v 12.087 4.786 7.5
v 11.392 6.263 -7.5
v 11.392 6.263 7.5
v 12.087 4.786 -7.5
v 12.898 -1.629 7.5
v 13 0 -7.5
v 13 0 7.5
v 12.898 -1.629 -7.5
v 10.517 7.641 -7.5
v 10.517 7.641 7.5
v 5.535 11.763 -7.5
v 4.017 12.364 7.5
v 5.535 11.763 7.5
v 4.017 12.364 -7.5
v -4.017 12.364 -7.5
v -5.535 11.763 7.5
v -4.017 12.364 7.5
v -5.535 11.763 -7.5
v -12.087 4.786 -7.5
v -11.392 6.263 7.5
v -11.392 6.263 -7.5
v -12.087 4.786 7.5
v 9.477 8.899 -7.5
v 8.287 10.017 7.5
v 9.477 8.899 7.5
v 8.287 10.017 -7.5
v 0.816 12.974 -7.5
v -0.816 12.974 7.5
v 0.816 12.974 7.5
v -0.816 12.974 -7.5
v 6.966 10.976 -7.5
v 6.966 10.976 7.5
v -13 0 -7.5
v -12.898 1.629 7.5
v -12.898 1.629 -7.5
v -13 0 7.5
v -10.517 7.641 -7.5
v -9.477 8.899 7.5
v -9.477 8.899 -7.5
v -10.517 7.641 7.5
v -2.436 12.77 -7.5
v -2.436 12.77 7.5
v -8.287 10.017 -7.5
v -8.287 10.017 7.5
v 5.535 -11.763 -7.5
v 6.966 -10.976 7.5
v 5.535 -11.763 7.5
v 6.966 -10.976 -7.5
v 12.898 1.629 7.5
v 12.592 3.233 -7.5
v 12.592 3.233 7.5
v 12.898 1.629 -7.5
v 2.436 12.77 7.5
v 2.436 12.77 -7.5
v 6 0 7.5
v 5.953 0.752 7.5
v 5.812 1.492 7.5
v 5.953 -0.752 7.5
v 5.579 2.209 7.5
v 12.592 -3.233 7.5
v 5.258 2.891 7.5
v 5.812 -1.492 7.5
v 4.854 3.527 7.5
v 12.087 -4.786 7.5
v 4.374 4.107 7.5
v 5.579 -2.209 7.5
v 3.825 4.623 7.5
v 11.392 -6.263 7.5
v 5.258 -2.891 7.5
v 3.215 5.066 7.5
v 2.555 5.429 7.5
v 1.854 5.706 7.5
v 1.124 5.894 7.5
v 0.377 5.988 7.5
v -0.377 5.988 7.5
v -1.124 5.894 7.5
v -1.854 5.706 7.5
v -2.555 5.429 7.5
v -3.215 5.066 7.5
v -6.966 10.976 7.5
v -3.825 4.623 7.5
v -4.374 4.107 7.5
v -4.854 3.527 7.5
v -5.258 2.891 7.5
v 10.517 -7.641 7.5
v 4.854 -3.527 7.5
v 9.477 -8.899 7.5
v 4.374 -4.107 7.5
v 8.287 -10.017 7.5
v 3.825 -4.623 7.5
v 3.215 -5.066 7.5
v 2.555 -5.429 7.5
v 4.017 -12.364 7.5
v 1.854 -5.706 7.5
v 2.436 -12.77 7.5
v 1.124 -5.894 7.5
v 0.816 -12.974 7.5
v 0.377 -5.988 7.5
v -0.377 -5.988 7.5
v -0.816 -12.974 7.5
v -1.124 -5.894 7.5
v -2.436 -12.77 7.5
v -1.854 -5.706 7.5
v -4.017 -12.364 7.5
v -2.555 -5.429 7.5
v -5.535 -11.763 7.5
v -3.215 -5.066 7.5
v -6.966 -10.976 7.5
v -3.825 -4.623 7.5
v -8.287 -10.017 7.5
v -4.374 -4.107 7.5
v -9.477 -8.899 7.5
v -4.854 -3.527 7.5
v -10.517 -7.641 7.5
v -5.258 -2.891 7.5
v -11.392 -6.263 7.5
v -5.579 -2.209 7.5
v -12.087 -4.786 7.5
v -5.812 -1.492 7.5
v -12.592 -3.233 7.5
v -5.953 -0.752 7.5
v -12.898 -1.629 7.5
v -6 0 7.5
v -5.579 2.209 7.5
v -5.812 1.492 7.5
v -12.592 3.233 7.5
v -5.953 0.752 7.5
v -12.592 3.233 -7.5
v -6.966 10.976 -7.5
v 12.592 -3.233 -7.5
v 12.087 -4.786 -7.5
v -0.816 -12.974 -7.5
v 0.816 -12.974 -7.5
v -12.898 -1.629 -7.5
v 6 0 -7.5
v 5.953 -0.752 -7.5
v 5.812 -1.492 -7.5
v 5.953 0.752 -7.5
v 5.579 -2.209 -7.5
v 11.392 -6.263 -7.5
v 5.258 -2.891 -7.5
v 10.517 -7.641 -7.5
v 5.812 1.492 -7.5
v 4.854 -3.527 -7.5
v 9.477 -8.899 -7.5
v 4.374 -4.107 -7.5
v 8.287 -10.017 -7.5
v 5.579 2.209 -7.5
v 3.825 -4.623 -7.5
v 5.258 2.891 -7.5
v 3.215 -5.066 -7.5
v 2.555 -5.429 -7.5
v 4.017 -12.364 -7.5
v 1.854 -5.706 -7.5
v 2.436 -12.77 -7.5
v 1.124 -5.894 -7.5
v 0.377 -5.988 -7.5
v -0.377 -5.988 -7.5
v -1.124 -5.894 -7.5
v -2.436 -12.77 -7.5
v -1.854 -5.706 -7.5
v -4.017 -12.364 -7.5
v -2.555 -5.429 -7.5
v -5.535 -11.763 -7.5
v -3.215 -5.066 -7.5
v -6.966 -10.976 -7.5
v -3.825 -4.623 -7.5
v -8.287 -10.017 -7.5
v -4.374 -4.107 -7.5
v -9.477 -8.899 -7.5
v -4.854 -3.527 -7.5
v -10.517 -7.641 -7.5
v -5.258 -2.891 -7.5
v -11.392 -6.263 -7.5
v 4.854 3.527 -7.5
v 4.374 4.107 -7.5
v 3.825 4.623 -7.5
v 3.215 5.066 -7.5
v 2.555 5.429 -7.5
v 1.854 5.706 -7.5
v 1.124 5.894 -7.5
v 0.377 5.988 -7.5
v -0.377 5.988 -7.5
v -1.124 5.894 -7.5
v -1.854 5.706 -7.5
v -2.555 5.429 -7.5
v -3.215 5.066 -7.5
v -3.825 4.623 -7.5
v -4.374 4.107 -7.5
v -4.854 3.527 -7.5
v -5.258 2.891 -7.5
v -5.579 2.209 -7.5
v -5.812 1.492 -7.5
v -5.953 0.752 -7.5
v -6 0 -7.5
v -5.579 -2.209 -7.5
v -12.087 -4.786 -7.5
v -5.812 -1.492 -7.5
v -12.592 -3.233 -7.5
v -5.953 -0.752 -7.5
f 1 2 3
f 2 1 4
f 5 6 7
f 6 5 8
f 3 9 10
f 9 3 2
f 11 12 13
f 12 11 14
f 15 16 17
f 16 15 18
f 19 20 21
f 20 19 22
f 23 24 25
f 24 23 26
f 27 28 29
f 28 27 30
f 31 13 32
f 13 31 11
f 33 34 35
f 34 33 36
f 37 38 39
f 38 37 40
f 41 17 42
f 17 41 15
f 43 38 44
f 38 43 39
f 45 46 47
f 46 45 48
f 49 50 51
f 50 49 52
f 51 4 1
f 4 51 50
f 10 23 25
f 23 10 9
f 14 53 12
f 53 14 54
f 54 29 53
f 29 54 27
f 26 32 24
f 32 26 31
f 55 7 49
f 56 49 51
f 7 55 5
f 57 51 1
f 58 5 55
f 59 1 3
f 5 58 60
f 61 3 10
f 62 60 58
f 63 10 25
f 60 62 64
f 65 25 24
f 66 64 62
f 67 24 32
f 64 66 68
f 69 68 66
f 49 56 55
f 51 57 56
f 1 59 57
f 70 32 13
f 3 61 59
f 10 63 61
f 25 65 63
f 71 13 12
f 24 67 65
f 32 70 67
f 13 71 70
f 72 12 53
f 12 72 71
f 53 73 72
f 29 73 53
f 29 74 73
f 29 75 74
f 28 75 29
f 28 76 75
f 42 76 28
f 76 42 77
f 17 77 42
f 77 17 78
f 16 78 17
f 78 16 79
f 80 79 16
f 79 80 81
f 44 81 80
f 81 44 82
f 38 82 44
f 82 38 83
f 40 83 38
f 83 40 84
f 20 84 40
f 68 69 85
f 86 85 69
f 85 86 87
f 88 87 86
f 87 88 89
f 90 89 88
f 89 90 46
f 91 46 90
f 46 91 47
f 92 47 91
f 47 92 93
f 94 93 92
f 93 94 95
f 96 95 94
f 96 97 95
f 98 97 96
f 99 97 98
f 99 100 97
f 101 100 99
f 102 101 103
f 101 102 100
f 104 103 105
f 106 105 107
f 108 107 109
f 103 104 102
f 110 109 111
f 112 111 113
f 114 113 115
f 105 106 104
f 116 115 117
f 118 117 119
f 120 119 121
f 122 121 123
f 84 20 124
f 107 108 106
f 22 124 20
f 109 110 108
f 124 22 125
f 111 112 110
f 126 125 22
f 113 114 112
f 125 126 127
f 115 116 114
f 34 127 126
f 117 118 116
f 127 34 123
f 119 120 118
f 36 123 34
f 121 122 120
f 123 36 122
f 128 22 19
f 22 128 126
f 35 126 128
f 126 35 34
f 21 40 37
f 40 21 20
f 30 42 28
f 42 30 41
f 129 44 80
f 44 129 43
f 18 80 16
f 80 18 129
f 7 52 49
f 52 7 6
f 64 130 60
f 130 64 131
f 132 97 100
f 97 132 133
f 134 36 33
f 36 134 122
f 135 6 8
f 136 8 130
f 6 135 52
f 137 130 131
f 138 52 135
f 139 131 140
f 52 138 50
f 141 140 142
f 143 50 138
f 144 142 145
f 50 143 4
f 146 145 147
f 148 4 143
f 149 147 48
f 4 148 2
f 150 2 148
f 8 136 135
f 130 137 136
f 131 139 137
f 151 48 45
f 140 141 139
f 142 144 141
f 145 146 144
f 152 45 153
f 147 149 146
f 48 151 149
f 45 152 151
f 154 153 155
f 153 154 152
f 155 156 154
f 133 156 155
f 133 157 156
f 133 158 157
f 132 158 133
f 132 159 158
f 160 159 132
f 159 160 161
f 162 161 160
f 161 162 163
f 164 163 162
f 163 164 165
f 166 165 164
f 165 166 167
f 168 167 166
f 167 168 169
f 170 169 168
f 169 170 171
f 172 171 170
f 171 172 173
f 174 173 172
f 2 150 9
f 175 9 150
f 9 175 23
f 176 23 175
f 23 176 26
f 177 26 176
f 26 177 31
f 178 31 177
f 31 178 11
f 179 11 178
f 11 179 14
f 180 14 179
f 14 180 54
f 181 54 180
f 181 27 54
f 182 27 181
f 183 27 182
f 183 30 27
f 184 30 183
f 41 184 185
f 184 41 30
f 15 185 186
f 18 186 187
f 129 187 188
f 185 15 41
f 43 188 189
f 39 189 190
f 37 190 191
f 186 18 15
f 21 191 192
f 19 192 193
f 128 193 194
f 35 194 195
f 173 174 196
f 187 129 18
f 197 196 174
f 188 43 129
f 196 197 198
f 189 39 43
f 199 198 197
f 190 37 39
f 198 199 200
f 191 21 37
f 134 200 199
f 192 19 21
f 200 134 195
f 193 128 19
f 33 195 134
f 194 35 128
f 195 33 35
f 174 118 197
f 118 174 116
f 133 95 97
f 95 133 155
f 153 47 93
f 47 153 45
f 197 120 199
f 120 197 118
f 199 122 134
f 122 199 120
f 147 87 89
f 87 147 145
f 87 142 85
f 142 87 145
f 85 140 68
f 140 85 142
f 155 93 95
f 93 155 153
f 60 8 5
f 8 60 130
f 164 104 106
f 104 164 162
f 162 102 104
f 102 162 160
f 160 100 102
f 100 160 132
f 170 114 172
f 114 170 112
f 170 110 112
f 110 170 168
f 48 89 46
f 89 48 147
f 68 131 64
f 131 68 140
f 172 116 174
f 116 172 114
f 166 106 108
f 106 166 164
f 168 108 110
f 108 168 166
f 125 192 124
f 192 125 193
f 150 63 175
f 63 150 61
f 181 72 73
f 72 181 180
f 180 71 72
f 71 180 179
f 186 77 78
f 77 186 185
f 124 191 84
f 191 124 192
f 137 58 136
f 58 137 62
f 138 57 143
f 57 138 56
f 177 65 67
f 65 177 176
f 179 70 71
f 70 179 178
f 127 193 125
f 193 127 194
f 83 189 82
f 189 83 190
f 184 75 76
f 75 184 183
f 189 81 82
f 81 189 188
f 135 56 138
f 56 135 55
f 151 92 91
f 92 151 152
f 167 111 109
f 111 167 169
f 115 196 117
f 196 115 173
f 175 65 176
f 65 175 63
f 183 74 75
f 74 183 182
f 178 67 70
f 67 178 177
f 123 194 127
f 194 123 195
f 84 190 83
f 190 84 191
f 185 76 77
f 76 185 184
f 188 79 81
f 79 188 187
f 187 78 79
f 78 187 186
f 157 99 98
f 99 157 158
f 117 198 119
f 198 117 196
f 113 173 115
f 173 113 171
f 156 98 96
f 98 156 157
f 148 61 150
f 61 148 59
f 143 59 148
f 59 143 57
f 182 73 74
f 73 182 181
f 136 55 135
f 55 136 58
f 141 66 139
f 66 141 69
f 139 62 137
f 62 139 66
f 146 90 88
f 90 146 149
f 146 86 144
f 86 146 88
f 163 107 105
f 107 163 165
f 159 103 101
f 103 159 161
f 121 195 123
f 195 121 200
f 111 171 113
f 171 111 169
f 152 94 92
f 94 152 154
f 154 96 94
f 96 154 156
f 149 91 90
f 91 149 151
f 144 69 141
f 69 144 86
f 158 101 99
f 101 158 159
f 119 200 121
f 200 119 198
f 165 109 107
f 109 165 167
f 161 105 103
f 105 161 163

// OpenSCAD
$fn = 50;


difference() {
	union() {
		translate(v = [0, 0, -7.5000000000]) {
			cylinder(h = 15, r = 13.0000000000);
		}
	}
	union() {
		translate(v = [0, 0, -100.0000000000]) {
			cylinder(h = 200, r = 6);
		}
	}
}
